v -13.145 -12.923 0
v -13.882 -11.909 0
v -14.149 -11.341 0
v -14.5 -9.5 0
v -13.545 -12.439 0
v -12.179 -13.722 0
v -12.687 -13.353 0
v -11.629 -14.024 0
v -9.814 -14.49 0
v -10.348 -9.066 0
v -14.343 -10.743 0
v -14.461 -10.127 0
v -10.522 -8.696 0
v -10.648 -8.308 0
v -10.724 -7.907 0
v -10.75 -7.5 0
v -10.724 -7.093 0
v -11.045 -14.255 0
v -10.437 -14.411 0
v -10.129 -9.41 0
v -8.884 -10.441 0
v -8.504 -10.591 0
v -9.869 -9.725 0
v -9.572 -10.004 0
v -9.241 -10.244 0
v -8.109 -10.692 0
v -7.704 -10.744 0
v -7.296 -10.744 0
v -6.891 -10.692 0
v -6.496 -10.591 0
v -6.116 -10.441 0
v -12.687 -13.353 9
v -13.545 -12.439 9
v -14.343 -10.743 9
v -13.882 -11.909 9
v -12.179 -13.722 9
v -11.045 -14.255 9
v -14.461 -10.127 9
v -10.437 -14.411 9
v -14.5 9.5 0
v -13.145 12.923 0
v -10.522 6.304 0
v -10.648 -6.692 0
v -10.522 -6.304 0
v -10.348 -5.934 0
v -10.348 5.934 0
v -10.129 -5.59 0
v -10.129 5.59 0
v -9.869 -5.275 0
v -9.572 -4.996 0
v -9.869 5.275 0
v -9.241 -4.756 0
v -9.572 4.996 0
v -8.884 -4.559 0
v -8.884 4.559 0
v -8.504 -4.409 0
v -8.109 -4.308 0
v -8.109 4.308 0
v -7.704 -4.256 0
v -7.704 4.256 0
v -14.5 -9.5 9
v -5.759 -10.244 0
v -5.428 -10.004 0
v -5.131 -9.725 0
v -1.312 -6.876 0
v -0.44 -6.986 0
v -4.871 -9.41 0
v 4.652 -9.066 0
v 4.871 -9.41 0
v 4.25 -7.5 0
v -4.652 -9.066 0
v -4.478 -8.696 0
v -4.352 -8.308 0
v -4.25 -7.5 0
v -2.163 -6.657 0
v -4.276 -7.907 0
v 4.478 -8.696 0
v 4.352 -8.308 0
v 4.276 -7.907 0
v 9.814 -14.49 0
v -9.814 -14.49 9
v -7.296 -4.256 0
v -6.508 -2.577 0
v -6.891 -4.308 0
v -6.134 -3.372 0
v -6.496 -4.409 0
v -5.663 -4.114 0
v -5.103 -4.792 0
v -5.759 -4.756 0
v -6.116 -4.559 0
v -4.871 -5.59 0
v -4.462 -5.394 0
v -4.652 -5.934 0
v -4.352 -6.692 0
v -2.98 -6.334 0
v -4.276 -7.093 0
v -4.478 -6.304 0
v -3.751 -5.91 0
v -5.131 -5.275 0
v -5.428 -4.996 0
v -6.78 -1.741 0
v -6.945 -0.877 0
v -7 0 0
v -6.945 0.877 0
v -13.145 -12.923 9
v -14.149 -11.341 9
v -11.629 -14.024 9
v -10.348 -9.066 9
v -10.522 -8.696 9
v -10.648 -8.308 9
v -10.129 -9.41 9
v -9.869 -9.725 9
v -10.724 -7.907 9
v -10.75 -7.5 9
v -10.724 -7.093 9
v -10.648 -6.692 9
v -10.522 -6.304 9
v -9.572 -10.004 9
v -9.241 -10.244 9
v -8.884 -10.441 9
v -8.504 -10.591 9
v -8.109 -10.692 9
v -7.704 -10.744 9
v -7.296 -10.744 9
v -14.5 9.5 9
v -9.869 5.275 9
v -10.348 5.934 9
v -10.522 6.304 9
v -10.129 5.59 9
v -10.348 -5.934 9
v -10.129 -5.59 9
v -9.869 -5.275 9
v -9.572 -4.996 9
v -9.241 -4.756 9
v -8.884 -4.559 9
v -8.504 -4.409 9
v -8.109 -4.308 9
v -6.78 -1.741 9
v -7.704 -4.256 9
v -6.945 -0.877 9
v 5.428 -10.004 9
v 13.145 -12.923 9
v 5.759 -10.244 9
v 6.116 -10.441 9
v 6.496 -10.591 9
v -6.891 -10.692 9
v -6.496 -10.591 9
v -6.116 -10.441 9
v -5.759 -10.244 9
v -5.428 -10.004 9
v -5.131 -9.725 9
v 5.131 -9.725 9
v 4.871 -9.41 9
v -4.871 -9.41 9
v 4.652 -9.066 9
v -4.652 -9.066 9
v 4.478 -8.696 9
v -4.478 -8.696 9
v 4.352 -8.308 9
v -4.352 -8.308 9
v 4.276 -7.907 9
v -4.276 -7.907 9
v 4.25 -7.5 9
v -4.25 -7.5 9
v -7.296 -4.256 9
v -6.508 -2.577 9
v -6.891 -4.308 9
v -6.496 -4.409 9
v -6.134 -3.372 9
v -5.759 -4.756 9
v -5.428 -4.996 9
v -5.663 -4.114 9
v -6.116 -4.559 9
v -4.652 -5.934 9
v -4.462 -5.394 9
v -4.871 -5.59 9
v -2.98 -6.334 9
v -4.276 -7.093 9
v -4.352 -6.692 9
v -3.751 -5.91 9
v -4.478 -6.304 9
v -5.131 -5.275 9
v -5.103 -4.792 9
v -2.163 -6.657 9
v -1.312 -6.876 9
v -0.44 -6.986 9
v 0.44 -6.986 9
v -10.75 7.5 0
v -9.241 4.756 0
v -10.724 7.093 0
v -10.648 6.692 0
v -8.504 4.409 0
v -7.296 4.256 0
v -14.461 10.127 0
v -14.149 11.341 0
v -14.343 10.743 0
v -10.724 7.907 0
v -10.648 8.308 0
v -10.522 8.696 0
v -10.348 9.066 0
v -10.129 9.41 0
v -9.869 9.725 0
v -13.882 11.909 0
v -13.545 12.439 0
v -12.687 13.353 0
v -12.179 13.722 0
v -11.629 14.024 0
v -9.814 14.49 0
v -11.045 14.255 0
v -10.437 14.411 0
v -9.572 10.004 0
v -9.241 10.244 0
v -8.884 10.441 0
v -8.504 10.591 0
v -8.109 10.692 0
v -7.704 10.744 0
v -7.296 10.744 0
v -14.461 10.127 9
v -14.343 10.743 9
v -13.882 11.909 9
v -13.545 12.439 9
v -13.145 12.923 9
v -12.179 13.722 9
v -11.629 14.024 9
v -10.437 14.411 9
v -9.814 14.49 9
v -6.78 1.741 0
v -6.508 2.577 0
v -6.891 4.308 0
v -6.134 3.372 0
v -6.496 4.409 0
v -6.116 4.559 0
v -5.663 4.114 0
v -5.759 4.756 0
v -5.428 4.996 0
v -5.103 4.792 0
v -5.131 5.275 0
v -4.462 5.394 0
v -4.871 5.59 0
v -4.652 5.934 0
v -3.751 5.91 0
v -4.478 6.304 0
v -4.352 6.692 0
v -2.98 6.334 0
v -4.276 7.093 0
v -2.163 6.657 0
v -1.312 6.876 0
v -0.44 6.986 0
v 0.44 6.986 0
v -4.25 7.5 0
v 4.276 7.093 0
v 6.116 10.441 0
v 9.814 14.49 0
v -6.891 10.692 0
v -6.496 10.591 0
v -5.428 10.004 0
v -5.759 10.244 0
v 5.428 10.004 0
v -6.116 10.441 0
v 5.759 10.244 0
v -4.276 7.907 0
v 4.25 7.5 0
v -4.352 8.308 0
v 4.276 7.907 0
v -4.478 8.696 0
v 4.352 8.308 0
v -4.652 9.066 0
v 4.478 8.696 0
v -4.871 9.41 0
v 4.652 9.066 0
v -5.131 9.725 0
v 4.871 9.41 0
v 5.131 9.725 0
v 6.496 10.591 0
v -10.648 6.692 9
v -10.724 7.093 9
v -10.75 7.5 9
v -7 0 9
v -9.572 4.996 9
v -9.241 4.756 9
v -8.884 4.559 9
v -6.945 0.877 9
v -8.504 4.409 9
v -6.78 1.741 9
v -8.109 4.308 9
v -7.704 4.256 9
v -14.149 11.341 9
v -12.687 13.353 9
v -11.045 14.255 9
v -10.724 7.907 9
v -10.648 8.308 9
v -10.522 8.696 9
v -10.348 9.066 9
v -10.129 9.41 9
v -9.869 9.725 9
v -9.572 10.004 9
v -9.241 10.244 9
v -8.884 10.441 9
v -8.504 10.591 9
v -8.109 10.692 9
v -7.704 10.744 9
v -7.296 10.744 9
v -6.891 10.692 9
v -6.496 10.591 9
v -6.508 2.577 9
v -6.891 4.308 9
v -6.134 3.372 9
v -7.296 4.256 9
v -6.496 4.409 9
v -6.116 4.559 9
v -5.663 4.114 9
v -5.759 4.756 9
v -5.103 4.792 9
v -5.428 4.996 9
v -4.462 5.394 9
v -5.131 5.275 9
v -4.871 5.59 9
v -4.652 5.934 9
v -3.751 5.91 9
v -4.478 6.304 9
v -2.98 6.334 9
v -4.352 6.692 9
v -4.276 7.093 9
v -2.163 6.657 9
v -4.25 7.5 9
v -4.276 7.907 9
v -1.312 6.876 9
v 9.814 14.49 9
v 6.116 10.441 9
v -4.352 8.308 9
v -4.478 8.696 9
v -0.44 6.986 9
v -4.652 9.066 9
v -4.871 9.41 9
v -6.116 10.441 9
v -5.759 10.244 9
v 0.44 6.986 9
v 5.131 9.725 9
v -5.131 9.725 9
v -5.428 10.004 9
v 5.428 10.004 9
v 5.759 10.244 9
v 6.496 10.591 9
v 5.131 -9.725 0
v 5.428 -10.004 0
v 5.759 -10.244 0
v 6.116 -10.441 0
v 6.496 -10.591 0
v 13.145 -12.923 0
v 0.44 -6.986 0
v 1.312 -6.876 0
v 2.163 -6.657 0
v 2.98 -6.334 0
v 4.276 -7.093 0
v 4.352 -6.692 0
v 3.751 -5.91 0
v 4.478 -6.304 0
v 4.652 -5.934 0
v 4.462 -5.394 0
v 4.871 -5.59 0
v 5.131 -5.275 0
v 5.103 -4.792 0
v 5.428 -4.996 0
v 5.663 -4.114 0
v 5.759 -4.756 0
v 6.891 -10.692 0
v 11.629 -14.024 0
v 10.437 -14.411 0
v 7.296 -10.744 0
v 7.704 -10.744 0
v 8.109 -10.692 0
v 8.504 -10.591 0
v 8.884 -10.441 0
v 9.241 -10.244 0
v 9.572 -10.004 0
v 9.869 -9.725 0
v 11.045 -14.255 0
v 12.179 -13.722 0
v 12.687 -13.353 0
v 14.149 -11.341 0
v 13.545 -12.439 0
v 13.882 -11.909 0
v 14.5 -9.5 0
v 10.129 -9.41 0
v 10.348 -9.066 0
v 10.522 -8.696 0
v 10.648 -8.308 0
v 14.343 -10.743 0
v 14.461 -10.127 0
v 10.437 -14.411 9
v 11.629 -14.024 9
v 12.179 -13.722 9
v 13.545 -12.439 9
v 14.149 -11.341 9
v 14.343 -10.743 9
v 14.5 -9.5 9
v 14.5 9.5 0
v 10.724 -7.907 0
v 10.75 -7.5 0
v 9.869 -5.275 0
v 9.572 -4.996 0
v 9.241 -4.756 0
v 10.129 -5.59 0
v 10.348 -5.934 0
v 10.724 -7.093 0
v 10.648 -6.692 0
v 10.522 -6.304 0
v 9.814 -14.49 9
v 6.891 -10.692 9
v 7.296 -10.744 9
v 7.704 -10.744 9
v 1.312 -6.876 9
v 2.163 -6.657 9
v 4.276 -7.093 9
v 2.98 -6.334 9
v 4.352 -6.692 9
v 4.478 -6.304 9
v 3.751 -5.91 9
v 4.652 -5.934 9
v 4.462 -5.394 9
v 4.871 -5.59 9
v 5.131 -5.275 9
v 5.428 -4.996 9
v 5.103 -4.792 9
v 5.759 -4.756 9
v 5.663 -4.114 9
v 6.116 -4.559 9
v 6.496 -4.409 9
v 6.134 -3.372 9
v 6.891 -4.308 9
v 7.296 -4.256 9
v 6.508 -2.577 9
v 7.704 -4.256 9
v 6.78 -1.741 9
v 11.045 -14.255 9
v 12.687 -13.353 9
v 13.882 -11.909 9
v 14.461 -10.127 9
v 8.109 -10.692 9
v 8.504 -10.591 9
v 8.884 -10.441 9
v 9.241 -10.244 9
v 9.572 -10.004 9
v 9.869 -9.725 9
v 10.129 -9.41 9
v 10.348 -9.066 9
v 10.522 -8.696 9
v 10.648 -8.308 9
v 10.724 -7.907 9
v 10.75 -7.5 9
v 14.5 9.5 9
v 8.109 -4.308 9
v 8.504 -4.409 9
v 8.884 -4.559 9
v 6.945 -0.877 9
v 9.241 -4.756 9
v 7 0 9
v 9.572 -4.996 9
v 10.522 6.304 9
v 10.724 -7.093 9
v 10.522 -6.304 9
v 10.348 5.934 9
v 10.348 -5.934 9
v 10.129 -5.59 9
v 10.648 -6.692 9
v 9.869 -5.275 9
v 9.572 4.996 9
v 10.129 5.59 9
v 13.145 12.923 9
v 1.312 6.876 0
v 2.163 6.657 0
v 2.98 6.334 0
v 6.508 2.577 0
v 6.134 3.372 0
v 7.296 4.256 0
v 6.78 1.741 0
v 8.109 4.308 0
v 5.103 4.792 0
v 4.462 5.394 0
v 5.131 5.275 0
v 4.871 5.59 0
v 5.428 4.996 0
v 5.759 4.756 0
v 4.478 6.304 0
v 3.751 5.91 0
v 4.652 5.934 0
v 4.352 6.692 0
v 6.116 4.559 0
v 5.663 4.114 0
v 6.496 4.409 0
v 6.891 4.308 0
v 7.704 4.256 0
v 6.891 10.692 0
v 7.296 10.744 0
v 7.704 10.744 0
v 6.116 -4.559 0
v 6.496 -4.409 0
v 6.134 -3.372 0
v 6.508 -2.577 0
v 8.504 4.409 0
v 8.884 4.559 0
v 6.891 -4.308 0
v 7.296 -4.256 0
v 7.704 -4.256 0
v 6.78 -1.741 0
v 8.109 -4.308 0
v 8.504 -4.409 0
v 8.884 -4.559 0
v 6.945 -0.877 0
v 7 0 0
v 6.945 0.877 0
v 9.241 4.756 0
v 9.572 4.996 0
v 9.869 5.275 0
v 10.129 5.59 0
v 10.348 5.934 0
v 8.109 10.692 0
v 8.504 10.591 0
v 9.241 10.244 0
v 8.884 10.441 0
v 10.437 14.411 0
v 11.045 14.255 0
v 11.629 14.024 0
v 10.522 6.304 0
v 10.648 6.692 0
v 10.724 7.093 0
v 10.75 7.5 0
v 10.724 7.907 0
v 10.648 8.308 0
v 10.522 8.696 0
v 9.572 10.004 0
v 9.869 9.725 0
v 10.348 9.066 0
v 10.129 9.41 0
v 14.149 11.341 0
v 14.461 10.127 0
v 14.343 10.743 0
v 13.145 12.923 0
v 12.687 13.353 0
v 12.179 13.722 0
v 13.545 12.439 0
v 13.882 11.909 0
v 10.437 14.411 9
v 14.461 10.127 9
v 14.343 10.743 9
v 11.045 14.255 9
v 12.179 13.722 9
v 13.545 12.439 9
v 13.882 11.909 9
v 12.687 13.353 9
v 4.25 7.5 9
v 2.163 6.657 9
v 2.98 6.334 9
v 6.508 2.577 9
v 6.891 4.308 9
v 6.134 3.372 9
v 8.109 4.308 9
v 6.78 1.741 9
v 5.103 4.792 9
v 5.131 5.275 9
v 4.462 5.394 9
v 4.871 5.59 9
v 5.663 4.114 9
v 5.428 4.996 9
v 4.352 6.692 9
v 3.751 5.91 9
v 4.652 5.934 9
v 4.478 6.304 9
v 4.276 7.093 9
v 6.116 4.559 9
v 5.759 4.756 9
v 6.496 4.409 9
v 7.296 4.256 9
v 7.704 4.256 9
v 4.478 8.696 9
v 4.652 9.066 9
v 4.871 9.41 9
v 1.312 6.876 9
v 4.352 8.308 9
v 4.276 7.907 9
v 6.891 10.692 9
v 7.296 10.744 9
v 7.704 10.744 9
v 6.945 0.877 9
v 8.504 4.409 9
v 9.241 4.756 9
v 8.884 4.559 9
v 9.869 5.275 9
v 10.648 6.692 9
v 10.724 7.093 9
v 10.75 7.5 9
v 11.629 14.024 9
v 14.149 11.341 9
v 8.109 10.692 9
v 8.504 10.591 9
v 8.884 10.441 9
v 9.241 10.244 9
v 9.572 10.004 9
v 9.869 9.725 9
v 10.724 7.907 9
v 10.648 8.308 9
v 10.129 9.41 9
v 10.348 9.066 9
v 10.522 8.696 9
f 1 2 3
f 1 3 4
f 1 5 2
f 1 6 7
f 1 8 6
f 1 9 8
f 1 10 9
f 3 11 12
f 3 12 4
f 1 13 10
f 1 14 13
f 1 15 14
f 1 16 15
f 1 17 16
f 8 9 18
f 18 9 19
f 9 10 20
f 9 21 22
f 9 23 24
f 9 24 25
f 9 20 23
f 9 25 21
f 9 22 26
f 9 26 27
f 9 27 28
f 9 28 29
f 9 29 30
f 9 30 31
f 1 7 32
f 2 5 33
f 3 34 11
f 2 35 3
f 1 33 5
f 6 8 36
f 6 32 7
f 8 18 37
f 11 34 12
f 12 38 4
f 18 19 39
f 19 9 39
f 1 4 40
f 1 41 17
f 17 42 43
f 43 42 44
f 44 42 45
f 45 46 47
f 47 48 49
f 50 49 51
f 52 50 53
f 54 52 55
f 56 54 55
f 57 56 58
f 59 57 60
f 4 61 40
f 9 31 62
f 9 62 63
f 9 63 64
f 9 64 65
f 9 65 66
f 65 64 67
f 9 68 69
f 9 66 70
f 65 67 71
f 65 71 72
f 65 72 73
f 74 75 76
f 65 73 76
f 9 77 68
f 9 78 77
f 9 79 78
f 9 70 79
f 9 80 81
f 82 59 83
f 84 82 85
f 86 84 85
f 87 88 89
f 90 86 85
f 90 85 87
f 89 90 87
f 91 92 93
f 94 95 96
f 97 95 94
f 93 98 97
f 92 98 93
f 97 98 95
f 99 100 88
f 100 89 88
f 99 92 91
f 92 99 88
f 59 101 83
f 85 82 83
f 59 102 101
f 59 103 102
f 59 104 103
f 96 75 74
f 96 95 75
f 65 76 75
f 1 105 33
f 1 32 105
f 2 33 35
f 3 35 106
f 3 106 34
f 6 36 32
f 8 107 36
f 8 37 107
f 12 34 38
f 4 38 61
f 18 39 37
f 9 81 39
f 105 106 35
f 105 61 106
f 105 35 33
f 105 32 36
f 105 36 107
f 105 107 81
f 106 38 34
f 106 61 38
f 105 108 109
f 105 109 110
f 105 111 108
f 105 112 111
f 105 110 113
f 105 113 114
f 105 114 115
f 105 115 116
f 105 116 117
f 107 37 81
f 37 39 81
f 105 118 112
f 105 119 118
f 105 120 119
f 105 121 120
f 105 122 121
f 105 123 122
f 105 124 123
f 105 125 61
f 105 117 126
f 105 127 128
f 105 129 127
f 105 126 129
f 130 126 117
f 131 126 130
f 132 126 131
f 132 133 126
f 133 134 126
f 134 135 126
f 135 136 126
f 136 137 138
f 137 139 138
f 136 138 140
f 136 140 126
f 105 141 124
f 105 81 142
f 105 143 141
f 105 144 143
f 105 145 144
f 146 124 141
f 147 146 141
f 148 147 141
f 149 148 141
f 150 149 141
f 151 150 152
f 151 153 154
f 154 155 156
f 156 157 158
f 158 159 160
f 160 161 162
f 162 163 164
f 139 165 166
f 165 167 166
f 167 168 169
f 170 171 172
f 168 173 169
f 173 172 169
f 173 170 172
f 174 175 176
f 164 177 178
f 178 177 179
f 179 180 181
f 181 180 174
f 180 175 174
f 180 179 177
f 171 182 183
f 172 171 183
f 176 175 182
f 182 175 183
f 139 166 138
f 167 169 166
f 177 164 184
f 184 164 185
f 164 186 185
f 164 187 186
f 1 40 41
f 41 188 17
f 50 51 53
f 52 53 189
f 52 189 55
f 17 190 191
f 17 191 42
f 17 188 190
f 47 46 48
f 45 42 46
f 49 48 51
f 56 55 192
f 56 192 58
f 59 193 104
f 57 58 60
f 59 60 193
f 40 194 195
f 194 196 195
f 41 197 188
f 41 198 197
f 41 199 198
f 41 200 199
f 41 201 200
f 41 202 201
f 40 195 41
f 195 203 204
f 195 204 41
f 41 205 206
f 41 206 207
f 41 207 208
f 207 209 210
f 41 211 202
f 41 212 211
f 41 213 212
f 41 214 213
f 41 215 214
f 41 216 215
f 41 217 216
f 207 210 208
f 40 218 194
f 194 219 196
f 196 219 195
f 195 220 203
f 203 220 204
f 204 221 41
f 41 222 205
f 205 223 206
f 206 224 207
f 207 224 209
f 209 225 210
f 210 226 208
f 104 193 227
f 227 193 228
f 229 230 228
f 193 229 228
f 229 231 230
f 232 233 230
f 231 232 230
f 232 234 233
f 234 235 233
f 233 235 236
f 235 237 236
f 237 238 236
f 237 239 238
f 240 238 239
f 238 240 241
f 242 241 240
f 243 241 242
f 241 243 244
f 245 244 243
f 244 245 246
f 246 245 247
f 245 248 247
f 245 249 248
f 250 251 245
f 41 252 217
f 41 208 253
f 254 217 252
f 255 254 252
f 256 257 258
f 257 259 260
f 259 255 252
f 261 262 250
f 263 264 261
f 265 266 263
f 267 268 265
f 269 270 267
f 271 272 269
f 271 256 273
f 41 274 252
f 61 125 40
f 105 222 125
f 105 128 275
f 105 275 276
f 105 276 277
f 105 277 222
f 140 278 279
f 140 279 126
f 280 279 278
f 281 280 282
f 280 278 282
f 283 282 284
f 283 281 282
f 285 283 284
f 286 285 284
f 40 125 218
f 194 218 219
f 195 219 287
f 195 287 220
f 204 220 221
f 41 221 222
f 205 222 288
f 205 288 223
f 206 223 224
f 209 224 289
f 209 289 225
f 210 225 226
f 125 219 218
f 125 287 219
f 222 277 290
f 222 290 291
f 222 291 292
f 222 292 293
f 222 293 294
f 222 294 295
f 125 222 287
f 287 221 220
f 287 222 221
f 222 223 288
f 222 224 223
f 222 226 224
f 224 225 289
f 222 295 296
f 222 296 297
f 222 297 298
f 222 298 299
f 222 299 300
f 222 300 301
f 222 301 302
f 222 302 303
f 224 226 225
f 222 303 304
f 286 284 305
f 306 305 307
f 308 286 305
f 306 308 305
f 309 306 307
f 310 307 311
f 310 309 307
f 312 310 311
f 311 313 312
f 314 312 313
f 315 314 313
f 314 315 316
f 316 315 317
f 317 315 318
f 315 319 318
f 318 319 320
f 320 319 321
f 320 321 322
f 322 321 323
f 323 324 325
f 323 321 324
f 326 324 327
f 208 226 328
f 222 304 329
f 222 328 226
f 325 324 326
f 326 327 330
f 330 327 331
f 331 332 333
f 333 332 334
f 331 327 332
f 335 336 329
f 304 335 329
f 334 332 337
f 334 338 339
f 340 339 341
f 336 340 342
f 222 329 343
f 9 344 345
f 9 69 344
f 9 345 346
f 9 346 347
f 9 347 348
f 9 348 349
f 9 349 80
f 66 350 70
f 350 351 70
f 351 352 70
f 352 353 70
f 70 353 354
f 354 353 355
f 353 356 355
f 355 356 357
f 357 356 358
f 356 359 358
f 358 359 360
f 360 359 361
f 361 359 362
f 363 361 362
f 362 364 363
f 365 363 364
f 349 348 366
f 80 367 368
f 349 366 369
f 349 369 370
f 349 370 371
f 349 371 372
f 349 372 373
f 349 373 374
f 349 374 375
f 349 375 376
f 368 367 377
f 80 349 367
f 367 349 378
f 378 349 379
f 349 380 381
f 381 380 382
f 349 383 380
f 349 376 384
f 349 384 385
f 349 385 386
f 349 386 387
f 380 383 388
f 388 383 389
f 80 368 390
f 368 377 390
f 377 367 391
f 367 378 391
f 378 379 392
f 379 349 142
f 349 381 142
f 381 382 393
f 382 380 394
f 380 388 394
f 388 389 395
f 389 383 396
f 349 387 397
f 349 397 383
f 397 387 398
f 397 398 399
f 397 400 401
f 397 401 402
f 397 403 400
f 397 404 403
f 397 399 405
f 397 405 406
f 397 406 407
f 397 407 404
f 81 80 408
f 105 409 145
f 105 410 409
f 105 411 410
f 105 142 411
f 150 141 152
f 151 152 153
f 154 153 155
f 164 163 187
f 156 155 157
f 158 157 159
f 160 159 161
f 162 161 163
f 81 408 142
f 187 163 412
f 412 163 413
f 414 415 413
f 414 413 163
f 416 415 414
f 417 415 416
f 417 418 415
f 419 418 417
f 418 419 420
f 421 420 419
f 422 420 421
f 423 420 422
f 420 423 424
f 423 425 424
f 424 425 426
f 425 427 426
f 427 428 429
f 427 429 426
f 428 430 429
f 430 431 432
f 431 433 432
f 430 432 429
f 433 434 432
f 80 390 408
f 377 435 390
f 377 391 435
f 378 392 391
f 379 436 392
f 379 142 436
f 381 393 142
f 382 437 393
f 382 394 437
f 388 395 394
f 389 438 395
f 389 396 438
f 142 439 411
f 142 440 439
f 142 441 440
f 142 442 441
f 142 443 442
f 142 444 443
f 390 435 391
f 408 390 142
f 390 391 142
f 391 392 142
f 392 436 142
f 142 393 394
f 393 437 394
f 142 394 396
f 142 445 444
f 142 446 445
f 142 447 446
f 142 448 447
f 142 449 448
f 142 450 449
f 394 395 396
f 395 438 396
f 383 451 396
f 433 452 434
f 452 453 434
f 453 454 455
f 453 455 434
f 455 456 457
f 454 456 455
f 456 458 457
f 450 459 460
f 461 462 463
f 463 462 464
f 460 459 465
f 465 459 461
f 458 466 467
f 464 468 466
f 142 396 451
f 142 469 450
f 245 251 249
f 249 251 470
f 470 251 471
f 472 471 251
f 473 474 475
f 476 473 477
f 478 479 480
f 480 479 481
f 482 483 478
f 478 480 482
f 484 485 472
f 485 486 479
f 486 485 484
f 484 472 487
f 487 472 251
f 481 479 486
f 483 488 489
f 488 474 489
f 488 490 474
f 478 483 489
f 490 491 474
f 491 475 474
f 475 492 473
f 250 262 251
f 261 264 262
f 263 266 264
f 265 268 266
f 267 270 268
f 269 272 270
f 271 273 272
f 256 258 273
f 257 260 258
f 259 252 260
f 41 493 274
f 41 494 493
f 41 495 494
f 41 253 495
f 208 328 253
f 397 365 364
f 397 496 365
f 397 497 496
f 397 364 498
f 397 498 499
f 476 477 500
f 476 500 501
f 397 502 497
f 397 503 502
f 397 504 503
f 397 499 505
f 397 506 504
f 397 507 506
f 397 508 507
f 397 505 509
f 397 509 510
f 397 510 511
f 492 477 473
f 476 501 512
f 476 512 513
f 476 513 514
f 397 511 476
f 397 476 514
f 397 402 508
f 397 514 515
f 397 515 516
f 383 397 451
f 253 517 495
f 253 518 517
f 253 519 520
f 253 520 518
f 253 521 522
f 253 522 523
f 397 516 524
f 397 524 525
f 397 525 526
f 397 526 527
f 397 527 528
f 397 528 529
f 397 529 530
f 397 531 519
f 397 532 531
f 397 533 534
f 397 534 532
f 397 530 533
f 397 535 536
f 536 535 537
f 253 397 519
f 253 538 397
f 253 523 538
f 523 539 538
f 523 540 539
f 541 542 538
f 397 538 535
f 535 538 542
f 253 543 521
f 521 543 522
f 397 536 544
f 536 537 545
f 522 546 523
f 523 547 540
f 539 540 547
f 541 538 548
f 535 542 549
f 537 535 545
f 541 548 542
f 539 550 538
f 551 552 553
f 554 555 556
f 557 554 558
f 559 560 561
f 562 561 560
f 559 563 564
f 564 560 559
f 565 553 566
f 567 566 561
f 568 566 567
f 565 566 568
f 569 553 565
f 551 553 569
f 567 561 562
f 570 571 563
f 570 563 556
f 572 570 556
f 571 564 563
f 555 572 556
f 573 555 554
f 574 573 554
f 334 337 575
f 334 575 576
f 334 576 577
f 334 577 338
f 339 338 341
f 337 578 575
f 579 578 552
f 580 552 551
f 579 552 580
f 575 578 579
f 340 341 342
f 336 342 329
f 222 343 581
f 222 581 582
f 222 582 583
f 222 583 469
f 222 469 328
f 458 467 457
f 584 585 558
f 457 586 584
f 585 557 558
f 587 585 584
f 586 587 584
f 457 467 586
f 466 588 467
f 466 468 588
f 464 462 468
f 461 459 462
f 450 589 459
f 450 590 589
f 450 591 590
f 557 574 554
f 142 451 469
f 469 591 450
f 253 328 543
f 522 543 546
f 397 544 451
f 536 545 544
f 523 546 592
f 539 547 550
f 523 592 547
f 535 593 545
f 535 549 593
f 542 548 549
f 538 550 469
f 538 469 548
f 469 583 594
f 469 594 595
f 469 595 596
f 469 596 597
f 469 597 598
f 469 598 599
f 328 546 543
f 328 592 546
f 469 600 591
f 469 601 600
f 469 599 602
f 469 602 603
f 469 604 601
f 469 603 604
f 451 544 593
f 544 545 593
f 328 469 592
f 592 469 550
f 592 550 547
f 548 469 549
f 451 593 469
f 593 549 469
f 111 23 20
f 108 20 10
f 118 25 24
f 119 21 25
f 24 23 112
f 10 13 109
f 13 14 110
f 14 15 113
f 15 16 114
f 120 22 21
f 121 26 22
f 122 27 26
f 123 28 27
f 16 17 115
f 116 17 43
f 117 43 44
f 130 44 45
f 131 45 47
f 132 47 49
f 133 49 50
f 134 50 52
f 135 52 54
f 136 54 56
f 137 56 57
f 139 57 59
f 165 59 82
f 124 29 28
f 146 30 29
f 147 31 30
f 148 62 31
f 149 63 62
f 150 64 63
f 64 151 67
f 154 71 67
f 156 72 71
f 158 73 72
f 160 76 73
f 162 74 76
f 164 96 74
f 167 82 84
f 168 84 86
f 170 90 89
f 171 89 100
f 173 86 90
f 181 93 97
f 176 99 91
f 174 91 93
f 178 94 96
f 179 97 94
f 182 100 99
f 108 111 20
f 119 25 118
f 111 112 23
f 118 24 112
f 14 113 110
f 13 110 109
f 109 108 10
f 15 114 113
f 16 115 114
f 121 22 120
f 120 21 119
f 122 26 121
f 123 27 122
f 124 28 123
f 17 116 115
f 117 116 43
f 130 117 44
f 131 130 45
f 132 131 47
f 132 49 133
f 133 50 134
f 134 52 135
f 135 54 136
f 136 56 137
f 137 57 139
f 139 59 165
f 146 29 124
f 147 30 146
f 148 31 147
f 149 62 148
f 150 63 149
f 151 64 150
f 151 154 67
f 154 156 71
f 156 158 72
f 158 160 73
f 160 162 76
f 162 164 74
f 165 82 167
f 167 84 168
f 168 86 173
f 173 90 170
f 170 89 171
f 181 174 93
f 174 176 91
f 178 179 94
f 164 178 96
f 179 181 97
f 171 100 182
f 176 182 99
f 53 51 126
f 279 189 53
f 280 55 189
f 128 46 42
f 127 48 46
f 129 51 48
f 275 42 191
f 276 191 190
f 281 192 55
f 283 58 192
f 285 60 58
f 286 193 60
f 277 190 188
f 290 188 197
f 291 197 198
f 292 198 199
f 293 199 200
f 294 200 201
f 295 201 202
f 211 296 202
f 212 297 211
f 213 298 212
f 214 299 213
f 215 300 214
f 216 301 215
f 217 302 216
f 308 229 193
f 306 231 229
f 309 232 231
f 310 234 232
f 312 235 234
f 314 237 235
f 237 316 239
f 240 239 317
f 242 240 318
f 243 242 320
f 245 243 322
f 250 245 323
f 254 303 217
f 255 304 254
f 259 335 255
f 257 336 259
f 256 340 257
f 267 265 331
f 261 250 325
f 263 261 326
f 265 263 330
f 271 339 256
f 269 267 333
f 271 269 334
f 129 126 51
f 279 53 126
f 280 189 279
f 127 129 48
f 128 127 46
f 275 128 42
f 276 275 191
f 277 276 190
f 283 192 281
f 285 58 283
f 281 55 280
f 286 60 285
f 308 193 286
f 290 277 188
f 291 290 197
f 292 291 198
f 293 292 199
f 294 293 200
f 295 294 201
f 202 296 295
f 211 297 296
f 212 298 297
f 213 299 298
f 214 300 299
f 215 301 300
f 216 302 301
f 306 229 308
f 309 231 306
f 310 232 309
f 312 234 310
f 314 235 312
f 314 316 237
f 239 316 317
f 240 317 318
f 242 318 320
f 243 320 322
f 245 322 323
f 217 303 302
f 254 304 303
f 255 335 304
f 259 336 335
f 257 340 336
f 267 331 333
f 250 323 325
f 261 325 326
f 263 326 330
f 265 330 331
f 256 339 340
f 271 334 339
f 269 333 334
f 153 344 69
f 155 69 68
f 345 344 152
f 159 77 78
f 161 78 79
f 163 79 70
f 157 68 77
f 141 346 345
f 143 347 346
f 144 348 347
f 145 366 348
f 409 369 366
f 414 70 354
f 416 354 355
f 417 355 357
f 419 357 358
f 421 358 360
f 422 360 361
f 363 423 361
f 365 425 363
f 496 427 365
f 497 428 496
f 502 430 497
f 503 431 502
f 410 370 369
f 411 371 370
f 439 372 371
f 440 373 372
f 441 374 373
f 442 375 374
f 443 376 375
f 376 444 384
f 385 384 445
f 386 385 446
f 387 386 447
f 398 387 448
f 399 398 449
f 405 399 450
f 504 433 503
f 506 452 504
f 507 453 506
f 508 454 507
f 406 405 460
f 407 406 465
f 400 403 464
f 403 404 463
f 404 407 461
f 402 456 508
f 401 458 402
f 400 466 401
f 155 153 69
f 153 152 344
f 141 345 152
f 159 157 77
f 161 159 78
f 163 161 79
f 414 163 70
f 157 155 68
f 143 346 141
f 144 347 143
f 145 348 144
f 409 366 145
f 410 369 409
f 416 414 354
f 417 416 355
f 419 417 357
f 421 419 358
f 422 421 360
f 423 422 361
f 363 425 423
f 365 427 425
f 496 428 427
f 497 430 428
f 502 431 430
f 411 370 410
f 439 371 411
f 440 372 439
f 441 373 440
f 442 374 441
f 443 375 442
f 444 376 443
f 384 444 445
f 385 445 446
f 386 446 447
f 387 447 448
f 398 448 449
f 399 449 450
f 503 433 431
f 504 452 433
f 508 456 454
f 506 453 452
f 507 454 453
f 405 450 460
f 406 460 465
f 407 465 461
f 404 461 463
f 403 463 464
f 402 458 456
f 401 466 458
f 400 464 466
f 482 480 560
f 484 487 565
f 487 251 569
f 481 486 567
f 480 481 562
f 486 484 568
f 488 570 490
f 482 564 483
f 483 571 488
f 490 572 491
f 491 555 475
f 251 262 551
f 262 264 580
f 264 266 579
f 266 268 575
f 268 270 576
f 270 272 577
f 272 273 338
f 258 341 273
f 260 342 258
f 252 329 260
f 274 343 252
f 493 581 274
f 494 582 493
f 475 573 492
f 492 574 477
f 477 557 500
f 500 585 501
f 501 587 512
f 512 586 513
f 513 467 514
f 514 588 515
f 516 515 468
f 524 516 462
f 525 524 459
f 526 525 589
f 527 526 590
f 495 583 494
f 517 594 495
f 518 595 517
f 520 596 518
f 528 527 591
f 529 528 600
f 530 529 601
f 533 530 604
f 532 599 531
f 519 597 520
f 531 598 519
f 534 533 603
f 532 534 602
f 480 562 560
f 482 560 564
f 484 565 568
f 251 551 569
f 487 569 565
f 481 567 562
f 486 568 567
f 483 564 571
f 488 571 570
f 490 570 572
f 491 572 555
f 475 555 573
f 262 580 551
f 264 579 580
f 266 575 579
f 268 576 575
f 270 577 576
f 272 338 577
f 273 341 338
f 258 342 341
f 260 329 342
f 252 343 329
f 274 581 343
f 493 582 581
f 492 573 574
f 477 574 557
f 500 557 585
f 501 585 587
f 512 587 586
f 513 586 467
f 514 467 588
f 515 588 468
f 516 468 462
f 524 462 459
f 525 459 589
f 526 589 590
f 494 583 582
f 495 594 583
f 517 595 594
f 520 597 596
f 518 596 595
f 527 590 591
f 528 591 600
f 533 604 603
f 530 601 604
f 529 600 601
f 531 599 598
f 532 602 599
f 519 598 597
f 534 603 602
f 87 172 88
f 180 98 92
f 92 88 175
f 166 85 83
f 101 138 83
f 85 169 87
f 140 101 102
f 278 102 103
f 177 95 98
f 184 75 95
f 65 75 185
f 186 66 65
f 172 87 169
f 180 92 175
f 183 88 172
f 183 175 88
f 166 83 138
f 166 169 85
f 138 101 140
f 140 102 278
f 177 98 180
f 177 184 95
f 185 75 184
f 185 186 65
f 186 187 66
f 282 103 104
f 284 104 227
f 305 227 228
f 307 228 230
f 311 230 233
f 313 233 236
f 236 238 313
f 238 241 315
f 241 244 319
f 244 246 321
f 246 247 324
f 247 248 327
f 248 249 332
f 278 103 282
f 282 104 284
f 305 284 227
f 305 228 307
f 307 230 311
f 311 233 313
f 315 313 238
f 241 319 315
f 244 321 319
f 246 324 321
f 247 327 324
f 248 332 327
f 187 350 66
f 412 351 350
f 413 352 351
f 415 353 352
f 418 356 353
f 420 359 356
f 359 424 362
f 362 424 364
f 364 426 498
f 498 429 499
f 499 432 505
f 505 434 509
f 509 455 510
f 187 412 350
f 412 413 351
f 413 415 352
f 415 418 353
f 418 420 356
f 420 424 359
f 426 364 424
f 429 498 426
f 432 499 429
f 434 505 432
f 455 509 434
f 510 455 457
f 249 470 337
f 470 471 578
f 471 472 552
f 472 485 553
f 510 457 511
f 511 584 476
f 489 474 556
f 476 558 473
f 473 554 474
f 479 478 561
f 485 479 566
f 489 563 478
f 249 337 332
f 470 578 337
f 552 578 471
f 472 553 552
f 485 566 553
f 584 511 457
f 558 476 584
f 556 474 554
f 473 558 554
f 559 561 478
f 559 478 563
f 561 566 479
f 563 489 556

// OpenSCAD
$fn = 50;

difference() {
	union() {
		hull() {
			translate(v = [-9.5, 9.5, 0]) {
				cylinder(h = 9, r = 5);
			}
			translate(v = [9.5, 9.5, 0]) {
				cylinder(h = 9, r = 5);
			}
			translate(v = [-9.5, -9.5, 0]) {
				cylinder(h = 9, r = 5);
			}
			translate(v = [9.5, -9.5, 0]) {
				cylinder(h = 9, r = 5);
			}
		}
	}
	union() {
		translate(v = [-7.5, -7.5, -100.0]) {
			cylinder(h = 200, r = 3.25);
		}
		translate(v = [-7.5, 7.5, -100.0]) {
			cylinder(h = 200, r = 3.25);
		}
		translate(v = [7.5, -7.5, -100.0]) {
			cylinder(h = 200, r = 3.25);
		}
		translate(v = [7.5, 7.5, -100.0]) {
			cylinder(h = 200, r = 3.25);
		}
		translate(v = [-7.5, -7.5, -100.0]) {
			cylinder(h = 200, r = 1.8);
		}
		translate(v = [-7.5, 7.5, -100.0]) {
			cylinder(h = 200, r = 1.8);
		}
		translate(v = [7.5, -7.5, -100.0]) {
			cylinder(h = 200, r = 1.8);
		}
		translate(v = [7.5, 7.5, -100.0]) {
			cylinder(h = 200, r = 1.8);
		}
		cylinder(h = 9, r = 7.0);
	}
}
